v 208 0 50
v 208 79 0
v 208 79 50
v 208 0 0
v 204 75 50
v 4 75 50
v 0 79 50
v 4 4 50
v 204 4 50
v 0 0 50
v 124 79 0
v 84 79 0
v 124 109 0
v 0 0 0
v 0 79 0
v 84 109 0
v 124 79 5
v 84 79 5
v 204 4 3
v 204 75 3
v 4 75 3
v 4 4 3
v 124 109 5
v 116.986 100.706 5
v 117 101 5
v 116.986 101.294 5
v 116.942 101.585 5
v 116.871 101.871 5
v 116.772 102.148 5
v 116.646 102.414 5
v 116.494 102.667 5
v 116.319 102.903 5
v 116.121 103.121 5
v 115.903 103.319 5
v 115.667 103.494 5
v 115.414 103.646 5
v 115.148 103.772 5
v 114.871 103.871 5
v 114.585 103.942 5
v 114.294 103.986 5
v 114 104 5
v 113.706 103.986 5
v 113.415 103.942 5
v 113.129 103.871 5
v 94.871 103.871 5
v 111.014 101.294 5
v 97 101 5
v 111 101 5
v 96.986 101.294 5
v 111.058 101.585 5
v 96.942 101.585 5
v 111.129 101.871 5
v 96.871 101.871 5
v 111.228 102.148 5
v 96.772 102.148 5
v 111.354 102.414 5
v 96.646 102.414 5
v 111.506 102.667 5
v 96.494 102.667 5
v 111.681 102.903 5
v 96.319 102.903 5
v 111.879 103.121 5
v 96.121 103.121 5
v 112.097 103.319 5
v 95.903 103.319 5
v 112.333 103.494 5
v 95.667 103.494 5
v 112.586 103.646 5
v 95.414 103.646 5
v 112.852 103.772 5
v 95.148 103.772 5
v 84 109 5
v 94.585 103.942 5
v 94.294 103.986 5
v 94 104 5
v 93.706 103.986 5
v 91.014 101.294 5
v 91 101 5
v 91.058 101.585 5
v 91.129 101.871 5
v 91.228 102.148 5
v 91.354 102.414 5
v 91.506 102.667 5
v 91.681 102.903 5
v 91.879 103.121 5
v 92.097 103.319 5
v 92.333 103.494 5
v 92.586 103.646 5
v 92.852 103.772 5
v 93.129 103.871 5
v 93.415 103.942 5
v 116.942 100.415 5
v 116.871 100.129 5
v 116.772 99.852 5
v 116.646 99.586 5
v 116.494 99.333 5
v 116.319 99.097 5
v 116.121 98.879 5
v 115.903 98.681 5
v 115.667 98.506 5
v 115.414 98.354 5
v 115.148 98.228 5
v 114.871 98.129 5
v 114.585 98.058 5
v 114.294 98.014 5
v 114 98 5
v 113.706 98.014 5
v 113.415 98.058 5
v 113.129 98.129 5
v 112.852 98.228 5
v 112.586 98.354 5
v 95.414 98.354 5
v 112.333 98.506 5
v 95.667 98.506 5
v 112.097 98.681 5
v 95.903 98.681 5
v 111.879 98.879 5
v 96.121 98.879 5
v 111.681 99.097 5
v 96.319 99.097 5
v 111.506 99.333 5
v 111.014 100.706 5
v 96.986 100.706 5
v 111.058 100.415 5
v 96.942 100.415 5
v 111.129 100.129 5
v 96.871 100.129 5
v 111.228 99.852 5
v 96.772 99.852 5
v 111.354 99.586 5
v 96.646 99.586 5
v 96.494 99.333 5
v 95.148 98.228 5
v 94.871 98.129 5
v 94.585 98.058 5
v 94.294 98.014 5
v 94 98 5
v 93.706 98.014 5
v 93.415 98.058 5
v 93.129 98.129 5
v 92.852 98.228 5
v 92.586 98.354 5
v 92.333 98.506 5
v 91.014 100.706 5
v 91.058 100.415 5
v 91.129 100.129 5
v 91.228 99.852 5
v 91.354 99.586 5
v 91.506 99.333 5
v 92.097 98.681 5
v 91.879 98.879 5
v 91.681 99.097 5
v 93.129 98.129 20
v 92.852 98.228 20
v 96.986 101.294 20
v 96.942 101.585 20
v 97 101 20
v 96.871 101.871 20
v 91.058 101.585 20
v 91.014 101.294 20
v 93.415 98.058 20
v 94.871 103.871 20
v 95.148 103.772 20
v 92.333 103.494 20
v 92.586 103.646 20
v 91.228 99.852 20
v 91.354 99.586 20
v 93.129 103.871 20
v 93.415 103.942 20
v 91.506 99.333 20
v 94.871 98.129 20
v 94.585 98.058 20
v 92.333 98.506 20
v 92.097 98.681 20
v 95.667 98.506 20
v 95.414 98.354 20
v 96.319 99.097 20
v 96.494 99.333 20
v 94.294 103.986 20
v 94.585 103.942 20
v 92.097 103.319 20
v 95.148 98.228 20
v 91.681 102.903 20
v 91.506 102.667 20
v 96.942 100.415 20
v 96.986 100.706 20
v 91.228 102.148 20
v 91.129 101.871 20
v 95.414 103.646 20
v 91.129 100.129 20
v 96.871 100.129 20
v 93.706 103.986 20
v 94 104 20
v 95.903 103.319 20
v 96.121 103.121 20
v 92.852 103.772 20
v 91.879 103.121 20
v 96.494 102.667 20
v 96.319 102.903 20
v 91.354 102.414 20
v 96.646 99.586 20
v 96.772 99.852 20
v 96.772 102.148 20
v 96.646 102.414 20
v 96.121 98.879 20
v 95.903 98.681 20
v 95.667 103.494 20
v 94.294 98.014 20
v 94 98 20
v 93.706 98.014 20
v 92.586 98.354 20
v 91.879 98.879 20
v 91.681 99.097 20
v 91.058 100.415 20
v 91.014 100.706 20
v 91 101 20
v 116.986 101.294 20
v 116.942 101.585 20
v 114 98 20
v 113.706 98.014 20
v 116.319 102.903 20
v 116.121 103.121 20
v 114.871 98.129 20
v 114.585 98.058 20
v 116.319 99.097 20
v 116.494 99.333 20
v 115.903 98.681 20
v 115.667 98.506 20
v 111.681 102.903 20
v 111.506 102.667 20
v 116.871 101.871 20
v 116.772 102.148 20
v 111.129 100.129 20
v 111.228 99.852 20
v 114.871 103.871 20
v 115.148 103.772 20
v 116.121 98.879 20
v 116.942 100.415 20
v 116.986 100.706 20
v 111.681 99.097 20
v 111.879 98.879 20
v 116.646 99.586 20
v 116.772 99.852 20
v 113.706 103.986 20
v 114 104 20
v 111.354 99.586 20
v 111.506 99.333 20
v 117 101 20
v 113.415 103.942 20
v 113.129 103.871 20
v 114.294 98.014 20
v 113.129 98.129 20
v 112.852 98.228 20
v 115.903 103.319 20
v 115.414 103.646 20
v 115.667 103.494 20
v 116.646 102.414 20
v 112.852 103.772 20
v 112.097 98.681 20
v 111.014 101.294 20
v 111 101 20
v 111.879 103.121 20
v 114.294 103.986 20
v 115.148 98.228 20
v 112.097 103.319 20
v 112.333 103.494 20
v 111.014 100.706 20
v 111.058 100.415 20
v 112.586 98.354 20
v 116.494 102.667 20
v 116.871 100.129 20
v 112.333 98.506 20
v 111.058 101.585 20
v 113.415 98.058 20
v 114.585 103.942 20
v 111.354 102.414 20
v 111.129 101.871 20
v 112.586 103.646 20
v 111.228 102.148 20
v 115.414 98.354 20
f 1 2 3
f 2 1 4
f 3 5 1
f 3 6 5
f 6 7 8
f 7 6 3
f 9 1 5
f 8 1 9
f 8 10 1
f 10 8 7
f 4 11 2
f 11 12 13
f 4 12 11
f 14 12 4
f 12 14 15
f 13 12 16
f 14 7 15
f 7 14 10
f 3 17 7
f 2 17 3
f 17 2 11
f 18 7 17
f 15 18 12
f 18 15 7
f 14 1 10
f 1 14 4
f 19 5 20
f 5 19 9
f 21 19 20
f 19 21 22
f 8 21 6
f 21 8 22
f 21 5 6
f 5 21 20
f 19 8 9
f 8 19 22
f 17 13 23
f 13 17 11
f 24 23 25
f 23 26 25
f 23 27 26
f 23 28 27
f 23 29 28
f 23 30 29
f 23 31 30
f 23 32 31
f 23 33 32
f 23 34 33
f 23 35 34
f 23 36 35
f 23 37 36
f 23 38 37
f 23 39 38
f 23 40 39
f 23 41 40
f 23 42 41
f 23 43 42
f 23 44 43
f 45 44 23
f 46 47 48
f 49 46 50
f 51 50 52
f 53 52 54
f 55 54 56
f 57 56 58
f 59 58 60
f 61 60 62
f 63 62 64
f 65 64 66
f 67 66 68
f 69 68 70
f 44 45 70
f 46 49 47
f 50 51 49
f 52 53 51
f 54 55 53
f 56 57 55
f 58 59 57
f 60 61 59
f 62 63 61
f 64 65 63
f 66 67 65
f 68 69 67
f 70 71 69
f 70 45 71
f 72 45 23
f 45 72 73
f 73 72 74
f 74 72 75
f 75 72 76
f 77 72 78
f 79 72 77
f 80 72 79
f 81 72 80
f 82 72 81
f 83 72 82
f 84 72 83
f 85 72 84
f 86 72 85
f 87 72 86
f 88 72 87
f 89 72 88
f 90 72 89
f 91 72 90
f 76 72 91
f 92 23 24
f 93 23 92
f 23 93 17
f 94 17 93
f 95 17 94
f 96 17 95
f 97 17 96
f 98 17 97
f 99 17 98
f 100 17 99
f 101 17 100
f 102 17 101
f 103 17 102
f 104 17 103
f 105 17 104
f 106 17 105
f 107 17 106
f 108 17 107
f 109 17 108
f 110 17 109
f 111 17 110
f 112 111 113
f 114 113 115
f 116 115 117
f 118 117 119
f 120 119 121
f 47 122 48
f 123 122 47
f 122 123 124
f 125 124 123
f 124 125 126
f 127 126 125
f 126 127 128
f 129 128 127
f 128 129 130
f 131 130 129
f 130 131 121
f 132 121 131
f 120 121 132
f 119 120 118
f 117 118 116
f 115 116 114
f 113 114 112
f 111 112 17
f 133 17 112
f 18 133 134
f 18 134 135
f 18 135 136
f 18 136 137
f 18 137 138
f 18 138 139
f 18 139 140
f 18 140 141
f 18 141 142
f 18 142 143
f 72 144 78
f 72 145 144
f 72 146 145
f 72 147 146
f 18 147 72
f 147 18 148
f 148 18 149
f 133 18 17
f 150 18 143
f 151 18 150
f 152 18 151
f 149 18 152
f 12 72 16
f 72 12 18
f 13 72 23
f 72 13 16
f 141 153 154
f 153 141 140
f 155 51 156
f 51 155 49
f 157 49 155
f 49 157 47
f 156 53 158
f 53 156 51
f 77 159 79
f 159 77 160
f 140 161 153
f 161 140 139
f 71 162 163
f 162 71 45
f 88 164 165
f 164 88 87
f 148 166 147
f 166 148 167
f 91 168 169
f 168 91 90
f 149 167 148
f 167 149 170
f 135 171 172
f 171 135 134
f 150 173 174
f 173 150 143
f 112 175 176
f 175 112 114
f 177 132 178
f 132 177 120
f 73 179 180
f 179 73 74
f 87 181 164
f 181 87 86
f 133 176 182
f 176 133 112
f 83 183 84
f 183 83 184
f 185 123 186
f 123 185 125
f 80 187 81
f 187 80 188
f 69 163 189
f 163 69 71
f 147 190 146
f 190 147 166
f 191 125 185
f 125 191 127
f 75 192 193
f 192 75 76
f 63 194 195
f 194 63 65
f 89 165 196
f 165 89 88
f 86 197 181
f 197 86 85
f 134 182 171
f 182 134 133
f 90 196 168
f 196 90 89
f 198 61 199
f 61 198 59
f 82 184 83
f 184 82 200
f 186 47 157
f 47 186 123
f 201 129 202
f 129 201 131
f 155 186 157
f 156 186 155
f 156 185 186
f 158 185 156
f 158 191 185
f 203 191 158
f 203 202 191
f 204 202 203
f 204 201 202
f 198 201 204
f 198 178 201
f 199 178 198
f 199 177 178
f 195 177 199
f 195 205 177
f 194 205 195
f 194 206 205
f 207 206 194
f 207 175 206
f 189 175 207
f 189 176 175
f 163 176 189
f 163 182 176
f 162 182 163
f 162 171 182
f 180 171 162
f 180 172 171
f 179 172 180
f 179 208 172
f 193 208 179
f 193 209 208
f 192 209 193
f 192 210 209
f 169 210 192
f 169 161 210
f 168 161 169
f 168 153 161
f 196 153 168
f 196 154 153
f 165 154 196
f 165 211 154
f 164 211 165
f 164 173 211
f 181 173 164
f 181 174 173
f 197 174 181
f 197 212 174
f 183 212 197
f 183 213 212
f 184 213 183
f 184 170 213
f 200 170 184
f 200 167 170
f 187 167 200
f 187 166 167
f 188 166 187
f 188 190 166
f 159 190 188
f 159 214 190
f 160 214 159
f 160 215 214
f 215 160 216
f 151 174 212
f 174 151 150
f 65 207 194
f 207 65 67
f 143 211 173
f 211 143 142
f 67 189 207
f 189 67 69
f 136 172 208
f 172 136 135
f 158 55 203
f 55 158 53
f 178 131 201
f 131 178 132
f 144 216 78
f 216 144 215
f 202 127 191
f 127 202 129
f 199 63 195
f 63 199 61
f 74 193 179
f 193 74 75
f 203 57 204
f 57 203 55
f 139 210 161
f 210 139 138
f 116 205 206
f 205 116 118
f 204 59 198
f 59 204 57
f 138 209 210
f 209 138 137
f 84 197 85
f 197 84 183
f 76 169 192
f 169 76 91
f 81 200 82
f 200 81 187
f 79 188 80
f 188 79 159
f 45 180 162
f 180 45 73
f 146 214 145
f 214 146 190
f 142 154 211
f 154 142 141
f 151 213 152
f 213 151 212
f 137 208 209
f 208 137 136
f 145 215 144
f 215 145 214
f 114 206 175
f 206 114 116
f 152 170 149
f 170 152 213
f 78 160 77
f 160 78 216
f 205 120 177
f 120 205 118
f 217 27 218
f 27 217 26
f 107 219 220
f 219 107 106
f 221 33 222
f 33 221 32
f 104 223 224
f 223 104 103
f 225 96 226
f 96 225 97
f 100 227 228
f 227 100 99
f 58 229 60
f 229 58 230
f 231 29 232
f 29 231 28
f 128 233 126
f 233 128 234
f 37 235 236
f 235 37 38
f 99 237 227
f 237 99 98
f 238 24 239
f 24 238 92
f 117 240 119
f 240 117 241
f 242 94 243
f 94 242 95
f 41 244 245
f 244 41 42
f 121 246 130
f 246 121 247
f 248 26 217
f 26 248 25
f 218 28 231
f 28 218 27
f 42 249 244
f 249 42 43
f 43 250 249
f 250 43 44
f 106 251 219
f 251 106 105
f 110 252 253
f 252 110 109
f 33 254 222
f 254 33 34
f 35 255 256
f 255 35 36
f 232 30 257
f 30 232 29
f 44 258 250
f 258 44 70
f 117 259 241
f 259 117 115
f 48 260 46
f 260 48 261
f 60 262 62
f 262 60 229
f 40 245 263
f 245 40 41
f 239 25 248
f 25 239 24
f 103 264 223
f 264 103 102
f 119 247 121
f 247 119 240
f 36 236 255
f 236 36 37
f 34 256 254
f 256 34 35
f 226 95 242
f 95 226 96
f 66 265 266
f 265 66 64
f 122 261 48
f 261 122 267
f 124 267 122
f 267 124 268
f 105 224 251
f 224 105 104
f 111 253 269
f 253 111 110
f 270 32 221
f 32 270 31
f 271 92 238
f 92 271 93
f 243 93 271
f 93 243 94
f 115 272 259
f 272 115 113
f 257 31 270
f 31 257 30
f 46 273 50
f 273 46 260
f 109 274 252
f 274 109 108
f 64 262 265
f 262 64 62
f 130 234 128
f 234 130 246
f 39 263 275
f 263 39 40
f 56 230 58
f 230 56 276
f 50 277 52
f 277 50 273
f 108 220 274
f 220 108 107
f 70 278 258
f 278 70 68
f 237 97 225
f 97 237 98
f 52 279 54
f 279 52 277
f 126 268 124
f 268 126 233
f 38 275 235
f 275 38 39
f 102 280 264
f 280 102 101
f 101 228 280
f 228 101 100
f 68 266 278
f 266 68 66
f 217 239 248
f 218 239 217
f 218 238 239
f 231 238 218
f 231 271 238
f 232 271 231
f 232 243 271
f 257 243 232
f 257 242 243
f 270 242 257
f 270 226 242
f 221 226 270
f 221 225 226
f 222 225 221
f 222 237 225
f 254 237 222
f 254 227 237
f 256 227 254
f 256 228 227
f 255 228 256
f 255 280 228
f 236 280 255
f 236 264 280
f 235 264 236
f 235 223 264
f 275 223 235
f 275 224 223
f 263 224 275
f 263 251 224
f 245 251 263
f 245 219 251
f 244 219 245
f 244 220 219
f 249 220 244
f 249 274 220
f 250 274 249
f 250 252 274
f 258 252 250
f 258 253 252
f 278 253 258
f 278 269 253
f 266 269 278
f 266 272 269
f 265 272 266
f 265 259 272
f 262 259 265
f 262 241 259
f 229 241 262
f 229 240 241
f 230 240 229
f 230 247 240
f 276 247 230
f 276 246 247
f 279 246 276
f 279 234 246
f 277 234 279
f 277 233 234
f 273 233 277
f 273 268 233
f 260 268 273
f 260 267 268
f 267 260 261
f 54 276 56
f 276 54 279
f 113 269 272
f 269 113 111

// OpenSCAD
// Case per Generatore Campo EM Aurora con braccetto compatto e pin leggermente arretrati

// === PARAMETRI MODIFICABILI ===
generator_length = 200;
generator_width = 71;
generator_height = 200;

case_height = 50;
wall_thickness = 3;
clearance = 1;

// Braccetto e pin
pin_diameter = 6;
pin_height = 15;
pin_spacing = 20;        // distanza centro-centro
arm_width = 40;          // larghezza
arm_thickness = 5;       // spessore
arm_length = 30;         // lunghezza

// === MODULI ===

// Case principale
module generator_case() {
    difference() {
        cube([
            generator_length + 2*wall_thickness + 2*clearance,
            generator_width + 2*wall_thickness + 2*clearance,
            case_height
        ]);
        translate([wall_thickness + clearance, 
                   wall_thickness + clearance, 
                   wall_thickness])
        cube([generator_length, generator_width, case_height]);
    }
}

// Braccetto con due pin sopra (leggermente arretrati)
module pin_arm() {
    // Base del braccetto
    cube([arm_width, arm_length, arm_thickness]);

    // Pin arretrati di 5 mm rispetto all’estremità
    y_pin = arm_length - pin_diameter/2 - 5;

    // Pin sinistro
    translate([arm_width/2 - pin_spacing/2, y_pin, arm_thickness])
    cylinder(h=pin_height, d=pin_diameter, $fn=64);

    // Pin destro
    translate([arm_width/2 + pin_spacing/2, y_pin, arm_thickness])
    cylinder(h=pin_height, d=pin_diameter, $fn=64);
}

// === ASSEMBLAGGIO ===
module assembled_case() {
    union() {
        generator_case();

        // Braccetto centrato sul lato lungo del case
        translate([
            (generator_length + 2*wall_thickness + 2*clearance)/2 - arm_width/2,
            generator_width + 2*wall_thickness + 2*clearance,
            0
        ])
        pin_arm();
    }
}

// === OUTPUT ===
assembled_case();
